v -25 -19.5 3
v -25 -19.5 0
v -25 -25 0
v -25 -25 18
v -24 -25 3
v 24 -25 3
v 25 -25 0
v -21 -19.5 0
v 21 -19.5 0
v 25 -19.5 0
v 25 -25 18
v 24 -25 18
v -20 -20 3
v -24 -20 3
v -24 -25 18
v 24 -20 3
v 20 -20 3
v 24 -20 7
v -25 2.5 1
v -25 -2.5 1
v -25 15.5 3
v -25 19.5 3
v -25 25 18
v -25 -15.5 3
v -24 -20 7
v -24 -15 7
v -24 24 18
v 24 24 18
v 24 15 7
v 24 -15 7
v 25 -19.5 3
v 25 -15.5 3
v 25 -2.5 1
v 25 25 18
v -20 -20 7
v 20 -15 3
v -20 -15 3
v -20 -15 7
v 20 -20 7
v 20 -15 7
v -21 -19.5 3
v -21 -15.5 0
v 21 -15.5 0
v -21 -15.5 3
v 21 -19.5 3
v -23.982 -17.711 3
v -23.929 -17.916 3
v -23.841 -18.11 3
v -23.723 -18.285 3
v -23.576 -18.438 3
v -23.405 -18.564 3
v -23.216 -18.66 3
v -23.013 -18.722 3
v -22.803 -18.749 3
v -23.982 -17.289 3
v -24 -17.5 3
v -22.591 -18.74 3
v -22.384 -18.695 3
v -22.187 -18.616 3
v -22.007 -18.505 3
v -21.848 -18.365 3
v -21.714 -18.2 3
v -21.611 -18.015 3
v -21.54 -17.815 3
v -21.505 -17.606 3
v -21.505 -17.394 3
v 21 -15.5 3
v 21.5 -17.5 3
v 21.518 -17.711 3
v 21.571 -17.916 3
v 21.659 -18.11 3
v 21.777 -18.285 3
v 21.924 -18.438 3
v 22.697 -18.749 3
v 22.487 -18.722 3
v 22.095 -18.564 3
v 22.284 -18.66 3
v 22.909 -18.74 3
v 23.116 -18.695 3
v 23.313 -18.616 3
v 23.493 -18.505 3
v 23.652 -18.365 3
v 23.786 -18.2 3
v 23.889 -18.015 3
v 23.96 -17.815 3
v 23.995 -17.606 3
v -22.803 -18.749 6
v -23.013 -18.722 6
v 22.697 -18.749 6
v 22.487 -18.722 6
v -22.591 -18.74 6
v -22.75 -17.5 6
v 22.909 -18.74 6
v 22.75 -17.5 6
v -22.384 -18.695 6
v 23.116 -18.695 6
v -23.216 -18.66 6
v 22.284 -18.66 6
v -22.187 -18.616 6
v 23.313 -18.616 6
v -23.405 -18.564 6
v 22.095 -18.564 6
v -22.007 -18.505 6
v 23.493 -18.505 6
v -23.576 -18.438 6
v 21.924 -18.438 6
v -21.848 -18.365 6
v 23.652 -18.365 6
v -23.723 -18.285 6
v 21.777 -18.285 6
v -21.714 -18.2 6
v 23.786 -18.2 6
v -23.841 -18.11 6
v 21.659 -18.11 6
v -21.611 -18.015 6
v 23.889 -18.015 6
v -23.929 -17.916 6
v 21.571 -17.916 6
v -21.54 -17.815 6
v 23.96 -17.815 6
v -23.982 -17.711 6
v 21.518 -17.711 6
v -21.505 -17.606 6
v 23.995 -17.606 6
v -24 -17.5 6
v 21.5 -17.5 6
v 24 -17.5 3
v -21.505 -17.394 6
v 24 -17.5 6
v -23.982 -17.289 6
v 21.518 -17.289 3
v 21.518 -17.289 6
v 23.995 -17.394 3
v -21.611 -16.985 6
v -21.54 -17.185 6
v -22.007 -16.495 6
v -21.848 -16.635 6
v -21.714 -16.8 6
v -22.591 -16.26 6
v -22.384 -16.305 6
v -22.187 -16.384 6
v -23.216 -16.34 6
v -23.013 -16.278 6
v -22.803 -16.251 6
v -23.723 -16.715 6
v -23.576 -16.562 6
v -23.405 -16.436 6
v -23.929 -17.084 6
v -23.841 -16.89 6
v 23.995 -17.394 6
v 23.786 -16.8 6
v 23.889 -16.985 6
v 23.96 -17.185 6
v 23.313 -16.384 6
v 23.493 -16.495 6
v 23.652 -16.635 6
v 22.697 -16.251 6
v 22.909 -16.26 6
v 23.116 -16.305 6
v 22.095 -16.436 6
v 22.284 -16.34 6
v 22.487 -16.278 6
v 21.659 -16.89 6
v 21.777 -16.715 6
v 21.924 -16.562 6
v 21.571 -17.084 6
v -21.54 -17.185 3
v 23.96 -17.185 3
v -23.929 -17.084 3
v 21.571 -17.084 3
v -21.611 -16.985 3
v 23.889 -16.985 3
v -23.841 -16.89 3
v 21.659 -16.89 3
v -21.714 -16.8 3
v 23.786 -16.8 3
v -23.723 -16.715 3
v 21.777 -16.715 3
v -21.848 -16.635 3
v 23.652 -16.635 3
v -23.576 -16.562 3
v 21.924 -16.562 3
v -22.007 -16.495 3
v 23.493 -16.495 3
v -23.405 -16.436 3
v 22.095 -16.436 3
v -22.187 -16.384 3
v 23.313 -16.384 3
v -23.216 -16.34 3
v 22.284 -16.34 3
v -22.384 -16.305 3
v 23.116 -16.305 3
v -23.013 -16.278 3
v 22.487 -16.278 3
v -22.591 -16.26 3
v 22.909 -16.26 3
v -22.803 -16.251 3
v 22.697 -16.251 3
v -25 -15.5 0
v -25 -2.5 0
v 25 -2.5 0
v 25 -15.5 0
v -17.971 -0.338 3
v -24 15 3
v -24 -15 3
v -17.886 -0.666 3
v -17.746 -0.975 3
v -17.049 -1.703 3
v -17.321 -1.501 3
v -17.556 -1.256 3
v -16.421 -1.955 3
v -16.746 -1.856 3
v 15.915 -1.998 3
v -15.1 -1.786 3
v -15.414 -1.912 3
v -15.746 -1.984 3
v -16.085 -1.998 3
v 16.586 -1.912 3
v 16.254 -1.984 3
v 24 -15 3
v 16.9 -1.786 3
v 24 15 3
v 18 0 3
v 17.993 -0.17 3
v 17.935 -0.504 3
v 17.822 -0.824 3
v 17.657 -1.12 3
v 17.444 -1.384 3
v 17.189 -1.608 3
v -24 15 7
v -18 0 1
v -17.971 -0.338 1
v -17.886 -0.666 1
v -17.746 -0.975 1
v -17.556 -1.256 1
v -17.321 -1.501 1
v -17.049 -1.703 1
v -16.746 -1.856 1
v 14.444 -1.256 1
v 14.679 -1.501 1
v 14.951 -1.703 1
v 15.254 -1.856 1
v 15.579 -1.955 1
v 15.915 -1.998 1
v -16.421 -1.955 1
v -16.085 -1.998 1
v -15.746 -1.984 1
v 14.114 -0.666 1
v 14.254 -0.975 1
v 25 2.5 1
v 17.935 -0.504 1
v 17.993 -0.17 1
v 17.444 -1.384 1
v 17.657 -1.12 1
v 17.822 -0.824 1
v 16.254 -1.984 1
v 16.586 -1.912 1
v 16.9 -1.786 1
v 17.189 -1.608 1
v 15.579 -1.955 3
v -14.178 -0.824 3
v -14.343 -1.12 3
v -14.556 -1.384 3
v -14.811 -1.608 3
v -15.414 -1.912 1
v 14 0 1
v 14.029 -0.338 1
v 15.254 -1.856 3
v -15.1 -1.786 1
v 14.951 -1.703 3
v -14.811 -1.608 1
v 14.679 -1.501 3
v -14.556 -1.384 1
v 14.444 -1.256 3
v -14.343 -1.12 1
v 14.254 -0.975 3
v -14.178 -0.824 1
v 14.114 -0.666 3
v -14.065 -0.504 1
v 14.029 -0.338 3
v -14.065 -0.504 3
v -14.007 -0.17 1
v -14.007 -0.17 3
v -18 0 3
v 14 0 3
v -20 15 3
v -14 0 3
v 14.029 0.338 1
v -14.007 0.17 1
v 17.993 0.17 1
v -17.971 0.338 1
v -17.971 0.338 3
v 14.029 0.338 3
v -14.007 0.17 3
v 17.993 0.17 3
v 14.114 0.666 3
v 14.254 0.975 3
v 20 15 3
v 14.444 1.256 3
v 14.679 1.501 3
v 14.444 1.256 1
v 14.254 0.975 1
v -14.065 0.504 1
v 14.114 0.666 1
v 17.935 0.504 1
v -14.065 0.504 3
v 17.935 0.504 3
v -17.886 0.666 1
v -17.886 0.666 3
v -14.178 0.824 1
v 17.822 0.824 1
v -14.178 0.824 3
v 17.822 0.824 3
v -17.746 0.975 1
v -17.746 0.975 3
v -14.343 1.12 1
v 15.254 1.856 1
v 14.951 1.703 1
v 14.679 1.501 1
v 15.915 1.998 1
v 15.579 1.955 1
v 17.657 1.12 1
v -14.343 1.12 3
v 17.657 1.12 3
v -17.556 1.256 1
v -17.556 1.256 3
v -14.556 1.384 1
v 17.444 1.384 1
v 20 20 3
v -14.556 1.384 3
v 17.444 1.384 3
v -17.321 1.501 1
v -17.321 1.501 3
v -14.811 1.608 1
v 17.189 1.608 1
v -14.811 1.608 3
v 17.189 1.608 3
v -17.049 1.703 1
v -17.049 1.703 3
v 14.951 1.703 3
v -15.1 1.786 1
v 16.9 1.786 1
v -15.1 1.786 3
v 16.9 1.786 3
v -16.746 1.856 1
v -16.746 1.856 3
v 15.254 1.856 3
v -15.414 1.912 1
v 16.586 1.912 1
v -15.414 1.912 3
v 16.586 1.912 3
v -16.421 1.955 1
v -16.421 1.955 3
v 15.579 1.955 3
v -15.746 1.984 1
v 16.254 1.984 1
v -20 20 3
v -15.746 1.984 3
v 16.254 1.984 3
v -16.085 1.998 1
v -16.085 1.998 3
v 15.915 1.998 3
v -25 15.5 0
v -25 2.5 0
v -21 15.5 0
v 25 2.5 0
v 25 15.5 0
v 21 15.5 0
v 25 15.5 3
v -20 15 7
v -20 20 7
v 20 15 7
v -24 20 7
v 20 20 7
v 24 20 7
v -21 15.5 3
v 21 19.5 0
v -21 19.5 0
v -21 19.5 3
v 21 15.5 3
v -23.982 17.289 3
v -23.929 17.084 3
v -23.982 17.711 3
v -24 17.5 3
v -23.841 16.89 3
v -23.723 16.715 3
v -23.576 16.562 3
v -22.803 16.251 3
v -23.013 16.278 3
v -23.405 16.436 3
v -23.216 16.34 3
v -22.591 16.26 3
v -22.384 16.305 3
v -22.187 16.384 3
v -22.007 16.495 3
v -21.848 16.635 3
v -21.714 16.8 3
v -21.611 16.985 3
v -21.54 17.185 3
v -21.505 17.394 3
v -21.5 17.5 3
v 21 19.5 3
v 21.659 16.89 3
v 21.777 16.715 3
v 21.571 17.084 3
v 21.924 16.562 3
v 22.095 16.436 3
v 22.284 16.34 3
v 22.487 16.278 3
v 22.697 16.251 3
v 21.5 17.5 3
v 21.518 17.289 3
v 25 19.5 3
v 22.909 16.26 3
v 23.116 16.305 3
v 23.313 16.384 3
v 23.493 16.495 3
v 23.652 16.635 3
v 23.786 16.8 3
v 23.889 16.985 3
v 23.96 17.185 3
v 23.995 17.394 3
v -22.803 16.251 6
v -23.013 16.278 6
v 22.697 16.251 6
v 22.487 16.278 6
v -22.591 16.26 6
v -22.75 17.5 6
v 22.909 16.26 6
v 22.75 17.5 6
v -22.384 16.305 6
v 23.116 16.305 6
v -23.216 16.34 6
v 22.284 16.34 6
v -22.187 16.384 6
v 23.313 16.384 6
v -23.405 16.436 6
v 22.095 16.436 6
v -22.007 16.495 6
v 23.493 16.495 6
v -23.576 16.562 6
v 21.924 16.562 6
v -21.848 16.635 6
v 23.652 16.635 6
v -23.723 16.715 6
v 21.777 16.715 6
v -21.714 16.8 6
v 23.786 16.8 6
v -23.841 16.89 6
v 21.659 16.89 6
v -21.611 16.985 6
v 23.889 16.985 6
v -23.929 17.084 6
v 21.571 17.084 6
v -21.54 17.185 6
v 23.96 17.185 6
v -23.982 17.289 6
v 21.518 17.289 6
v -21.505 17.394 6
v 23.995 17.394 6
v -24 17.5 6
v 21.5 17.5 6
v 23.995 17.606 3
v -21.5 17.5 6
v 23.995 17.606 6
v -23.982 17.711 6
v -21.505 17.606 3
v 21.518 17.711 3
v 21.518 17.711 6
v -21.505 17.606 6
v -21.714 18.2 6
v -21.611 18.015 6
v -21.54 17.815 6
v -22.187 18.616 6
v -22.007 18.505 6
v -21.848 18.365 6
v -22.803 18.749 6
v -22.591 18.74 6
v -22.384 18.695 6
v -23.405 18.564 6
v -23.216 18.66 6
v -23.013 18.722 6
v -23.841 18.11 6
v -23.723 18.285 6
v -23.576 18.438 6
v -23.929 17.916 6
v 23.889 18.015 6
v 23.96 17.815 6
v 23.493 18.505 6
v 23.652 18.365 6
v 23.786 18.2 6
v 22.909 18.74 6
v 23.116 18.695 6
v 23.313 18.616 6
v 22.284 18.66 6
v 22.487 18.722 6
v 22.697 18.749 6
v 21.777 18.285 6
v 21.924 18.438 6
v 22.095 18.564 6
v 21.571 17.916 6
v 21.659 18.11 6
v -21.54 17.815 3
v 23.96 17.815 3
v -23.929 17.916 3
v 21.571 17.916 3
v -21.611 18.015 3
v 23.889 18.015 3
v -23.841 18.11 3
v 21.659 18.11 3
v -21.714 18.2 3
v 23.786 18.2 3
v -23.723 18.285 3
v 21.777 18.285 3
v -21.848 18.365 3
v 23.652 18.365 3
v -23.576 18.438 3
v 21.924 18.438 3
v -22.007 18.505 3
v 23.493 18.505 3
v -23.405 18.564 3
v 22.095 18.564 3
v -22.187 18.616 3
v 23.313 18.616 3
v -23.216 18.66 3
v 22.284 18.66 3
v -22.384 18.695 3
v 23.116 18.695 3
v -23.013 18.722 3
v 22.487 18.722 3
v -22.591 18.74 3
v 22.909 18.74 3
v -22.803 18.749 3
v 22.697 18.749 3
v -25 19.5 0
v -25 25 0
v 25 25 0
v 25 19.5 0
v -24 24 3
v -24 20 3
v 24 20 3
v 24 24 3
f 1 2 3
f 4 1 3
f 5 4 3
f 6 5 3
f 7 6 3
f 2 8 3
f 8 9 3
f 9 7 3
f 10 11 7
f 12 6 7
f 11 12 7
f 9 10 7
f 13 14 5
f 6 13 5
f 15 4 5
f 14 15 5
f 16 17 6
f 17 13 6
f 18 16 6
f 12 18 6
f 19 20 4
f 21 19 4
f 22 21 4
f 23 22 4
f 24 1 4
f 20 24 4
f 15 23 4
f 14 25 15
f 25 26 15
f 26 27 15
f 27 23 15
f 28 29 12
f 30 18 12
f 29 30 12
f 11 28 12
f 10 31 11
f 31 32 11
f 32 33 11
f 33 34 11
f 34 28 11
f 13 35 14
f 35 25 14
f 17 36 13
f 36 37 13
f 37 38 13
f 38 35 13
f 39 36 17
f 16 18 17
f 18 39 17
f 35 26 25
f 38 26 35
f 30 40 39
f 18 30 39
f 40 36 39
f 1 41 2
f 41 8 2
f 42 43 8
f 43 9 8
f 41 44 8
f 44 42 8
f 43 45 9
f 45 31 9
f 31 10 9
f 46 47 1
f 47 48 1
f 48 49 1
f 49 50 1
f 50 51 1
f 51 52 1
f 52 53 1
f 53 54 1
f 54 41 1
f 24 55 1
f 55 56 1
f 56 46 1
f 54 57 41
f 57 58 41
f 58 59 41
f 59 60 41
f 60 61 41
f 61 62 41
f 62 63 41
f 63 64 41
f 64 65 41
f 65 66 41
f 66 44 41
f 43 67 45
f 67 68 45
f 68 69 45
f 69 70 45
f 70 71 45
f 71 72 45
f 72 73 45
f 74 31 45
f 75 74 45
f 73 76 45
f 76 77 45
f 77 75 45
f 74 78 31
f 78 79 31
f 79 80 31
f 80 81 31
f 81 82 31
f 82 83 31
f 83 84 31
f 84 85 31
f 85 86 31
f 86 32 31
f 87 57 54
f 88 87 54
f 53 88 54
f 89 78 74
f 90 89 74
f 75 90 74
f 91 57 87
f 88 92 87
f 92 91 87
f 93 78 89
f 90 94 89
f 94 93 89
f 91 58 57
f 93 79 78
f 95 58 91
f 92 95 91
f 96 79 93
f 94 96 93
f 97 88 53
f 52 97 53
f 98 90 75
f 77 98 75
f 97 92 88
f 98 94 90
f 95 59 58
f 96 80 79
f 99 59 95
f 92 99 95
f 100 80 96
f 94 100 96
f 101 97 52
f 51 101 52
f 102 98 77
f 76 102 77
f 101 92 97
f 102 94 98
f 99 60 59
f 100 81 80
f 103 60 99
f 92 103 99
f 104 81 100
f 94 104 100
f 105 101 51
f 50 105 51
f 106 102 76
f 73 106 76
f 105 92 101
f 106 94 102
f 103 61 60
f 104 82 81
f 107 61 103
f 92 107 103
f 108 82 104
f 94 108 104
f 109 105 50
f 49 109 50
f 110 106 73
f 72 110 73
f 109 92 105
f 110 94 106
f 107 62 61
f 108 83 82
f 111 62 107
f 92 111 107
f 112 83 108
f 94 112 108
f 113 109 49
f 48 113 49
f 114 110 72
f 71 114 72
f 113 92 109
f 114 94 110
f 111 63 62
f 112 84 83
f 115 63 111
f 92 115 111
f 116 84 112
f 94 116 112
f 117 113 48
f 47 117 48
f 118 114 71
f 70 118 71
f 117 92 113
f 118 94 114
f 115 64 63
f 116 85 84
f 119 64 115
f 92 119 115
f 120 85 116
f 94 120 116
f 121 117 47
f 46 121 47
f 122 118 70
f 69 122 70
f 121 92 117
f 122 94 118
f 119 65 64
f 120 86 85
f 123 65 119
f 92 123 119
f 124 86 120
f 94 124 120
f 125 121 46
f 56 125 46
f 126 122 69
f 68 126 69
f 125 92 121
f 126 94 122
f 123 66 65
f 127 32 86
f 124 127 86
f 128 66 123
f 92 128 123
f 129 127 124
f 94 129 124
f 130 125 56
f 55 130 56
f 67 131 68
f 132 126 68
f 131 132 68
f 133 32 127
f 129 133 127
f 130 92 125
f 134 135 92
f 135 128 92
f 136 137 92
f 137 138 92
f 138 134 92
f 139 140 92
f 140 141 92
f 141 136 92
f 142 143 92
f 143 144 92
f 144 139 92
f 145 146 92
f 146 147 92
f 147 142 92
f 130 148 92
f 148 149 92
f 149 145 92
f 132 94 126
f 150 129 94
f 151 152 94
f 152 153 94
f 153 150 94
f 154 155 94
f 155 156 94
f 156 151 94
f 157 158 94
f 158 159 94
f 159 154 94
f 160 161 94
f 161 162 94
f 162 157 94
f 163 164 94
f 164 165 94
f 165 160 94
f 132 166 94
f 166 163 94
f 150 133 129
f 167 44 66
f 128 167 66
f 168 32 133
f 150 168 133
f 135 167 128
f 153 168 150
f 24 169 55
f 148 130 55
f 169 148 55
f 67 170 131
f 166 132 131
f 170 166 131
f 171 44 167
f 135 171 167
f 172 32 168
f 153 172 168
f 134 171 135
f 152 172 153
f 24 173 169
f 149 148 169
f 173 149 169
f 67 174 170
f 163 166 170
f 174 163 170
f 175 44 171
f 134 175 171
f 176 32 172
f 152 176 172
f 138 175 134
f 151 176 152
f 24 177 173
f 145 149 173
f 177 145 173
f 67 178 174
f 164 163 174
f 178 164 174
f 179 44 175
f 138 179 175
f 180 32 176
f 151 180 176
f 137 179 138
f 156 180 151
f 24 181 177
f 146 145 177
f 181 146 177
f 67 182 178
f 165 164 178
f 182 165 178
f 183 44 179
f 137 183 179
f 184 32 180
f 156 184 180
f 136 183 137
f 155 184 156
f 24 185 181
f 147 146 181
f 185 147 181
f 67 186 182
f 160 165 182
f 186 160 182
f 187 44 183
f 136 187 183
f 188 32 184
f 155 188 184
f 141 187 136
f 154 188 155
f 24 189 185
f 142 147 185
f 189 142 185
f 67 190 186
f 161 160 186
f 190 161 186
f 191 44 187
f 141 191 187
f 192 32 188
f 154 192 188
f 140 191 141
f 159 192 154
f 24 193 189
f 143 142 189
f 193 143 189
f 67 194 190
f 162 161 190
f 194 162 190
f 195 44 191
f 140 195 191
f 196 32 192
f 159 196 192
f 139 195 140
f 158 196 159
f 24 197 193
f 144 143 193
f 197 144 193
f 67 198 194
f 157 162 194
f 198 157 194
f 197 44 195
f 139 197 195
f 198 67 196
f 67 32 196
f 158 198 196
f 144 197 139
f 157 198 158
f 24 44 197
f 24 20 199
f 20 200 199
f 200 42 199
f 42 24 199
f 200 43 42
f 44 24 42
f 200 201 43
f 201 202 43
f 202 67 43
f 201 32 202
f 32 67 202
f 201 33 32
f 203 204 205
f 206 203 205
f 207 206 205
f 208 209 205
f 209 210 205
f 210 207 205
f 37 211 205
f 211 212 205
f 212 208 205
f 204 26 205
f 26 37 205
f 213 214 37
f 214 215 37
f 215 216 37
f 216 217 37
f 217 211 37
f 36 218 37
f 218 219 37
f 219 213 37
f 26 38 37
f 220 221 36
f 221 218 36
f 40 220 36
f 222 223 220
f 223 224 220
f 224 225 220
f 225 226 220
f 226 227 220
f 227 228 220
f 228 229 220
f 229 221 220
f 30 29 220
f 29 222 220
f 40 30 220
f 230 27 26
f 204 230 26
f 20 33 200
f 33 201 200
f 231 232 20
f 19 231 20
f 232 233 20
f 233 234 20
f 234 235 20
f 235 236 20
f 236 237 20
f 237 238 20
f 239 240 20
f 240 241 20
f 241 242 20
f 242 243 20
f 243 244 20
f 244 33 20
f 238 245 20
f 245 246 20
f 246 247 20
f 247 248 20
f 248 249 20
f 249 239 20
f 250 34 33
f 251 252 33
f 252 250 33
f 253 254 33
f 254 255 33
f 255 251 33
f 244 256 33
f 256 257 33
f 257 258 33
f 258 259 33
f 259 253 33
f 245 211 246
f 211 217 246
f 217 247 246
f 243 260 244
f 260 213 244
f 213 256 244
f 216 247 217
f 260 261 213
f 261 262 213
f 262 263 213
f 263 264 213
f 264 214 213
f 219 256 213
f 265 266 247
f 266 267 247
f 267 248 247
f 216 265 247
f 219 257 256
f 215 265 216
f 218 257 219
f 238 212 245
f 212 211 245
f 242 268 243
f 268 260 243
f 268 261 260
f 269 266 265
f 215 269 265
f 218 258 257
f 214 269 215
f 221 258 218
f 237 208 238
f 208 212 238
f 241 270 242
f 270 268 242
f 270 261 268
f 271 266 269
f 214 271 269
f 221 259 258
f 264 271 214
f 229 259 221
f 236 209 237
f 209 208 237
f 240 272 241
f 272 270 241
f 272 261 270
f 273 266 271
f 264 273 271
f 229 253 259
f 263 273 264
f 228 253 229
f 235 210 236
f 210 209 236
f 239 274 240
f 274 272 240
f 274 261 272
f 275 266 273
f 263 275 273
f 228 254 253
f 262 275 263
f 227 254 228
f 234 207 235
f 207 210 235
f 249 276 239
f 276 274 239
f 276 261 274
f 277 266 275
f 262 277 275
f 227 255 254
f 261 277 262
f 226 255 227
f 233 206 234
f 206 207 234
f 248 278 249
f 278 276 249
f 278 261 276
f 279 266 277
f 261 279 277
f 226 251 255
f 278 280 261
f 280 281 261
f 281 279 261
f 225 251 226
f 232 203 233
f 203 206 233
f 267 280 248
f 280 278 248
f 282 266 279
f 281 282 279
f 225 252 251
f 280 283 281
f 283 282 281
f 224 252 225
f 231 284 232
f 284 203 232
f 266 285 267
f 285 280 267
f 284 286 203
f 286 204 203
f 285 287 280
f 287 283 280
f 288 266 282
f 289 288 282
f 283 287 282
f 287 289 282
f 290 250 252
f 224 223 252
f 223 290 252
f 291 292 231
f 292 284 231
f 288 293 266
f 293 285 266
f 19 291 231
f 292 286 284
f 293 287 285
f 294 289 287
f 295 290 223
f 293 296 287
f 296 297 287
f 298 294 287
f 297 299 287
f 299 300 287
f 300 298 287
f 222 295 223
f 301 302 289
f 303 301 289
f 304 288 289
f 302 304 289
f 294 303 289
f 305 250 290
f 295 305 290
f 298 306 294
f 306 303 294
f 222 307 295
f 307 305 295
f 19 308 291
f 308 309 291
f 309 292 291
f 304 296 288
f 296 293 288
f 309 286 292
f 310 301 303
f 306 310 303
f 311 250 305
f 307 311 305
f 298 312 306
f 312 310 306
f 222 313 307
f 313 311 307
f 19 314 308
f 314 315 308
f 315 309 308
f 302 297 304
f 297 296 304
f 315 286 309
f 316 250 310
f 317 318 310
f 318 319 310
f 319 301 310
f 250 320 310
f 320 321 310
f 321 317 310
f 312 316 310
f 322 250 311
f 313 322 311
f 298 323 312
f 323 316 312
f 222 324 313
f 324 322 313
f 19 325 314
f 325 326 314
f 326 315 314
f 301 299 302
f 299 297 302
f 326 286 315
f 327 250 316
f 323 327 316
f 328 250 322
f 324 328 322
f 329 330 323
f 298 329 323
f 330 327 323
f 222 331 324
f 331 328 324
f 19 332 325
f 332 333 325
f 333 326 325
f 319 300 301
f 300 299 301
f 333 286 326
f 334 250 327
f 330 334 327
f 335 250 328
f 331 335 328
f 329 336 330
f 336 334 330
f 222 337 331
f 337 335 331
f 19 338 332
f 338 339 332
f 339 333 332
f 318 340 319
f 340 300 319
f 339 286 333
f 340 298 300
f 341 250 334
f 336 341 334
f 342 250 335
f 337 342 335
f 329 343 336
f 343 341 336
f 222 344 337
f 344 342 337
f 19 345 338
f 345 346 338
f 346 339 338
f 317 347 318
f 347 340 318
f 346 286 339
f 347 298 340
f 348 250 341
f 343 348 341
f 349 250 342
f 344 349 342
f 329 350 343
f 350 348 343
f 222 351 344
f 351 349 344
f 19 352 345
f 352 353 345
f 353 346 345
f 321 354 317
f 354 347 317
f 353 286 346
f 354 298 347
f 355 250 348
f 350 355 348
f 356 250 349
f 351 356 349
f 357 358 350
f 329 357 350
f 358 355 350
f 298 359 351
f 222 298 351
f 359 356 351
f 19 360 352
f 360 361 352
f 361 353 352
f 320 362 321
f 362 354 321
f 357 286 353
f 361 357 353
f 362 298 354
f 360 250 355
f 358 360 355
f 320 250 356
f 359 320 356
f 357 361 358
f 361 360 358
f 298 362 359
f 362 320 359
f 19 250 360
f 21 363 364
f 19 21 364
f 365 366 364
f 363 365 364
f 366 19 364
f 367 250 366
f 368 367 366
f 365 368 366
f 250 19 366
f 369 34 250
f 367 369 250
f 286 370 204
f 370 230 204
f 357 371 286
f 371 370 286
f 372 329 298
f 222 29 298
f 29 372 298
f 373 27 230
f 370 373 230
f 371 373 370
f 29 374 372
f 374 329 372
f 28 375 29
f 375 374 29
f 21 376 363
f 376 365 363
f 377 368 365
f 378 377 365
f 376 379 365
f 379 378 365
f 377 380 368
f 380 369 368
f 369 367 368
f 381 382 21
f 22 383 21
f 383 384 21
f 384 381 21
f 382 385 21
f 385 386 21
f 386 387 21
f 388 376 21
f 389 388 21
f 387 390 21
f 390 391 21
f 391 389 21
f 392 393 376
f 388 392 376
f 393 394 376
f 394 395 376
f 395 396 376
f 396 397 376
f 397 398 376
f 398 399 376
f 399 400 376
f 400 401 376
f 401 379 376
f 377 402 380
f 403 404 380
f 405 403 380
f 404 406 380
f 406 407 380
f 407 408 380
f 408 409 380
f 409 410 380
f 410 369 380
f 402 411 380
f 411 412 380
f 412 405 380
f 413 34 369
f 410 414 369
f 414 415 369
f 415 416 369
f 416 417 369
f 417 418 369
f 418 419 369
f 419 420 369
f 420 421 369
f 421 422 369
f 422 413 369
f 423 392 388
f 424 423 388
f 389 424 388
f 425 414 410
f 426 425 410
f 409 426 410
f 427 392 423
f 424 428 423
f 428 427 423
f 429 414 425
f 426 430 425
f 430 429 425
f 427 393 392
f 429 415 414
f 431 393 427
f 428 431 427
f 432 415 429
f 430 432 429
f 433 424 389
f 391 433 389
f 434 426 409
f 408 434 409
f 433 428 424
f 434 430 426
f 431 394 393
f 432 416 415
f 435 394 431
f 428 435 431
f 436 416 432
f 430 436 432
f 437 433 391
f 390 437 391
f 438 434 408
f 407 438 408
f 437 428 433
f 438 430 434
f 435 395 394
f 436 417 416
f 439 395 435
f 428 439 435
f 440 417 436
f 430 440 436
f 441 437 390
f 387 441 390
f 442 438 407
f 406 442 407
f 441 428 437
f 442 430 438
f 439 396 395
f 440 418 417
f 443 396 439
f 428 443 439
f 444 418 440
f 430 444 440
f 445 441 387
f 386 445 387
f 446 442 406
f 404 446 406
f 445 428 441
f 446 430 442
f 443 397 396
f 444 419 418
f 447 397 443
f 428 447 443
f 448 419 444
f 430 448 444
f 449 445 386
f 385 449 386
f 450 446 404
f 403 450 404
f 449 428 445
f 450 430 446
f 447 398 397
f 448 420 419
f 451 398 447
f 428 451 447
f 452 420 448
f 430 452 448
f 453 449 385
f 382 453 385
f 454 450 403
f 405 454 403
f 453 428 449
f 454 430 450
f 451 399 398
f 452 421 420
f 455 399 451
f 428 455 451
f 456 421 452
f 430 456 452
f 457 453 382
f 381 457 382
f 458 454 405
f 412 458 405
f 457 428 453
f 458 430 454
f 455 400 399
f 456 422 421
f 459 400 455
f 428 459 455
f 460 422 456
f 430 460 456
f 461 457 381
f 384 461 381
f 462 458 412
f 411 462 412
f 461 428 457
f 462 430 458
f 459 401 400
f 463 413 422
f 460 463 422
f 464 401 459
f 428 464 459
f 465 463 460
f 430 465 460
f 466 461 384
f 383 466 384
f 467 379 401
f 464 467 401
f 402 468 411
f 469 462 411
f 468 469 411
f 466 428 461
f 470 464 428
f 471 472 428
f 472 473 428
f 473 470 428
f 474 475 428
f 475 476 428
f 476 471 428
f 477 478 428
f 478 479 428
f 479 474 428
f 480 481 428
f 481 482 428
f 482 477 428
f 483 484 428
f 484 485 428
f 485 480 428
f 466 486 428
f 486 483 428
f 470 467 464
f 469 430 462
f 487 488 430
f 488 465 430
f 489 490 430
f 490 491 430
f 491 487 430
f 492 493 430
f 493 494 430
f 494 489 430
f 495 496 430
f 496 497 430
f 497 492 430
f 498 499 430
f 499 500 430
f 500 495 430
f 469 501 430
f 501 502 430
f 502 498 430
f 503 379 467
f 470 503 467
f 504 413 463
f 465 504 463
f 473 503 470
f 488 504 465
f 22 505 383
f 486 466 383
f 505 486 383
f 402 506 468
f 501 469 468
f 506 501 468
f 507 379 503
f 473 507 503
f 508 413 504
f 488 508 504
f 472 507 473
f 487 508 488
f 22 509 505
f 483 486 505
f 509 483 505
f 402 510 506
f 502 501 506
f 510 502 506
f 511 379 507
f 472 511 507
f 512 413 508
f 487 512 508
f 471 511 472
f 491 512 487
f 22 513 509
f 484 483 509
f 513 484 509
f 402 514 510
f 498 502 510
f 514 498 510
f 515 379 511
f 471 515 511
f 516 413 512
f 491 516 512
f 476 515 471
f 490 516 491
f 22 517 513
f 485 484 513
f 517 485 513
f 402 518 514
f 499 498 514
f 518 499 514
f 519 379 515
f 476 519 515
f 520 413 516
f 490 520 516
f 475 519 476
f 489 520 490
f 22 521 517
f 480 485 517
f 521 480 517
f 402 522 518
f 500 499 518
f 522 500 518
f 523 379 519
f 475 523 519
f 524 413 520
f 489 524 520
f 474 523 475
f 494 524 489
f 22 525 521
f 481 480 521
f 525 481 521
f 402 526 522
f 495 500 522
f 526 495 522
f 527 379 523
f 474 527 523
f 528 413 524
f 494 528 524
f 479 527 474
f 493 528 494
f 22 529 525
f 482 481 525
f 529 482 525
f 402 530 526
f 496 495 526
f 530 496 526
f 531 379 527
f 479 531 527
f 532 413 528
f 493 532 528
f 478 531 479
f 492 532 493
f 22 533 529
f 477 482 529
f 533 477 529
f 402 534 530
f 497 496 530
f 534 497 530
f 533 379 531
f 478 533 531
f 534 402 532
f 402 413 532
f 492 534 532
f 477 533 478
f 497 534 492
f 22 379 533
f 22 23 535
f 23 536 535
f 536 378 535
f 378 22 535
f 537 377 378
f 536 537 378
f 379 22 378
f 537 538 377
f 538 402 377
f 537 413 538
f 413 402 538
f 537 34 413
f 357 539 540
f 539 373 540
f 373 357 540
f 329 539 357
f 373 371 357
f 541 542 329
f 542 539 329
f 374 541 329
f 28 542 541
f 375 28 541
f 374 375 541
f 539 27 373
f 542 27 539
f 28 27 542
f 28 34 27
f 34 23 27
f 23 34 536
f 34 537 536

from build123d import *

# Parameters (mm, degrees)
SKICA1_W                  = 50
SKICA1_H                  = 50
P_IDAT_VYSUNUT_M2_DEPTH   = 3
SKICA5_W                  = 50
SKICA5_H                  = 5
ODEBRAT_VYSUNUT_M3_DEPTH  = 1
P_IDAT_VYSUNUT_M9_DEPTH   = 15
SKICA17_R                 = 2
ODEBRAT_VYSUNUT_M8_DEPTH  = 4
SKICA18_W                 = 5
SKICA18_H                 = 5
P_IDAT_VYSUNUT_M10_DEPTH  = 7
SKICA19_W                 = 4
SKICA19_H                 = 4
ODEBRAT_VYSUNUT_M9_DEPTH  = 3
SKICA20_R                 = 1.25
ODEBRAT_VYSUNUT_M10_DEPTH = 3


with BuildPart() as part:
    # Skica1 → Přidat vysunutím2 (new body)
    with BuildSketch(Plane.XY):
        Rectangle(SKICA1_W, SKICA1_H)
    extrude(amount=P_IDAT_VYSUNUT_M2_DEPTH)

    # Skica5 → Odebrat vysunutím3 (cut)
    with BuildSketch(Plane(origin=(0, 0, 0), x_dir=(-1, 0, 0), z_dir=(0, 0, -1))):
        Rectangle(SKICA5_W, SKICA5_H)
    extrude(amount=-ODEBRAT_VYSUNUT_M3_DEPTH, mode=Mode.SUBTRACT)

    # Skica14 → Přidat vysunutím9 (add)
    with BuildSketch(Plane.XY.offset(3)):
        Polygon((25, 25), (-25, 25), (-25, -25), (-24, -25), (-24, 24), (24, 24), (24, -25), (25, -25), align=None)
    extrude(amount=P_IDAT_VYSUNUT_M9_DEPTH)

    # Skica17 → Odebrat vysunutím8 (cut)
    with BuildSketch(Plane(origin=(0, 0, 1), x_dir=(-1, 0, 0), z_dir=(0, 0, -1))):
        with Locations((-16, 0)):
            Circle(SKICA17_R)
        with Locations((16, 0)):
            Circle(SKICA17_R)
    extrude(amount=-ODEBRAT_VYSUNUT_M8_DEPTH, mode=Mode.SUBTRACT)

    # Skica18 → Přidat vysunutím10 (add)
    with BuildSketch(Plane(origin=(0, 0, 0), x_dir=(-1, 0, 0), z_dir=(0, 0, -1))):
        with Locations((-22.5, 17.5)):
            Rectangle(SKICA18_W, SKICA18_H)
        with Locations((-22.5, -17.5)):
            Rectangle(SKICA18_W, SKICA18_H)
        with Locations((22.5, -17.5)):
            Rectangle(SKICA18_W, SKICA18_H)
        with Locations((22.5, 17.5)):
            Rectangle(SKICA18_W, SKICA18_H)
    extrude(amount=-P_IDAT_VYSUNUT_M10_DEPTH)

    # Skica19 → Odebrat vysunutím9 (cut)
    with BuildSketch(Plane(origin=(0, 0, 0), x_dir=(-1, 0, 0), z_dir=(0, 0, -1))):
        with Locations((-23, 17.5)):
            Rectangle(SKICA19_W, SKICA19_H)
        with Locations((-23, -17.5)):
            Rectangle(SKICA19_W, SKICA19_H)
        with Locations((23, -17.5)):
            Rectangle(SKICA19_W, SKICA19_H)
        with Locations((23, 17.5)):
            Rectangle(SKICA19_W, SKICA19_H)
    extrude(amount=-ODEBRAT_VYSUNUT_M9_DEPTH, mode=Mode.SUBTRACT)

    # Skica20 → Odebrat vysunutím10 (cut)
    with BuildSketch(Plane(origin=(0, 0, 3), x_dir=(-1, 0, 0), z_dir=(0, 0, -1))):
        with Locations((-22.75, 17.5)):
            Circle(SKICA20_R)
        with Locations((22.75, 17.5)):
            Circle(SKICA20_R)
        with Locations((22.75, -17.5)):
            Circle(SKICA20_R)
        with Locations((-22.75, -17.5)):
            Circle(SKICA20_R)
    extrude(amount=-ODEBRAT_VYSUNUT_M10_DEPTH, mode=Mode.SUBTRACT)


solid = part.part
